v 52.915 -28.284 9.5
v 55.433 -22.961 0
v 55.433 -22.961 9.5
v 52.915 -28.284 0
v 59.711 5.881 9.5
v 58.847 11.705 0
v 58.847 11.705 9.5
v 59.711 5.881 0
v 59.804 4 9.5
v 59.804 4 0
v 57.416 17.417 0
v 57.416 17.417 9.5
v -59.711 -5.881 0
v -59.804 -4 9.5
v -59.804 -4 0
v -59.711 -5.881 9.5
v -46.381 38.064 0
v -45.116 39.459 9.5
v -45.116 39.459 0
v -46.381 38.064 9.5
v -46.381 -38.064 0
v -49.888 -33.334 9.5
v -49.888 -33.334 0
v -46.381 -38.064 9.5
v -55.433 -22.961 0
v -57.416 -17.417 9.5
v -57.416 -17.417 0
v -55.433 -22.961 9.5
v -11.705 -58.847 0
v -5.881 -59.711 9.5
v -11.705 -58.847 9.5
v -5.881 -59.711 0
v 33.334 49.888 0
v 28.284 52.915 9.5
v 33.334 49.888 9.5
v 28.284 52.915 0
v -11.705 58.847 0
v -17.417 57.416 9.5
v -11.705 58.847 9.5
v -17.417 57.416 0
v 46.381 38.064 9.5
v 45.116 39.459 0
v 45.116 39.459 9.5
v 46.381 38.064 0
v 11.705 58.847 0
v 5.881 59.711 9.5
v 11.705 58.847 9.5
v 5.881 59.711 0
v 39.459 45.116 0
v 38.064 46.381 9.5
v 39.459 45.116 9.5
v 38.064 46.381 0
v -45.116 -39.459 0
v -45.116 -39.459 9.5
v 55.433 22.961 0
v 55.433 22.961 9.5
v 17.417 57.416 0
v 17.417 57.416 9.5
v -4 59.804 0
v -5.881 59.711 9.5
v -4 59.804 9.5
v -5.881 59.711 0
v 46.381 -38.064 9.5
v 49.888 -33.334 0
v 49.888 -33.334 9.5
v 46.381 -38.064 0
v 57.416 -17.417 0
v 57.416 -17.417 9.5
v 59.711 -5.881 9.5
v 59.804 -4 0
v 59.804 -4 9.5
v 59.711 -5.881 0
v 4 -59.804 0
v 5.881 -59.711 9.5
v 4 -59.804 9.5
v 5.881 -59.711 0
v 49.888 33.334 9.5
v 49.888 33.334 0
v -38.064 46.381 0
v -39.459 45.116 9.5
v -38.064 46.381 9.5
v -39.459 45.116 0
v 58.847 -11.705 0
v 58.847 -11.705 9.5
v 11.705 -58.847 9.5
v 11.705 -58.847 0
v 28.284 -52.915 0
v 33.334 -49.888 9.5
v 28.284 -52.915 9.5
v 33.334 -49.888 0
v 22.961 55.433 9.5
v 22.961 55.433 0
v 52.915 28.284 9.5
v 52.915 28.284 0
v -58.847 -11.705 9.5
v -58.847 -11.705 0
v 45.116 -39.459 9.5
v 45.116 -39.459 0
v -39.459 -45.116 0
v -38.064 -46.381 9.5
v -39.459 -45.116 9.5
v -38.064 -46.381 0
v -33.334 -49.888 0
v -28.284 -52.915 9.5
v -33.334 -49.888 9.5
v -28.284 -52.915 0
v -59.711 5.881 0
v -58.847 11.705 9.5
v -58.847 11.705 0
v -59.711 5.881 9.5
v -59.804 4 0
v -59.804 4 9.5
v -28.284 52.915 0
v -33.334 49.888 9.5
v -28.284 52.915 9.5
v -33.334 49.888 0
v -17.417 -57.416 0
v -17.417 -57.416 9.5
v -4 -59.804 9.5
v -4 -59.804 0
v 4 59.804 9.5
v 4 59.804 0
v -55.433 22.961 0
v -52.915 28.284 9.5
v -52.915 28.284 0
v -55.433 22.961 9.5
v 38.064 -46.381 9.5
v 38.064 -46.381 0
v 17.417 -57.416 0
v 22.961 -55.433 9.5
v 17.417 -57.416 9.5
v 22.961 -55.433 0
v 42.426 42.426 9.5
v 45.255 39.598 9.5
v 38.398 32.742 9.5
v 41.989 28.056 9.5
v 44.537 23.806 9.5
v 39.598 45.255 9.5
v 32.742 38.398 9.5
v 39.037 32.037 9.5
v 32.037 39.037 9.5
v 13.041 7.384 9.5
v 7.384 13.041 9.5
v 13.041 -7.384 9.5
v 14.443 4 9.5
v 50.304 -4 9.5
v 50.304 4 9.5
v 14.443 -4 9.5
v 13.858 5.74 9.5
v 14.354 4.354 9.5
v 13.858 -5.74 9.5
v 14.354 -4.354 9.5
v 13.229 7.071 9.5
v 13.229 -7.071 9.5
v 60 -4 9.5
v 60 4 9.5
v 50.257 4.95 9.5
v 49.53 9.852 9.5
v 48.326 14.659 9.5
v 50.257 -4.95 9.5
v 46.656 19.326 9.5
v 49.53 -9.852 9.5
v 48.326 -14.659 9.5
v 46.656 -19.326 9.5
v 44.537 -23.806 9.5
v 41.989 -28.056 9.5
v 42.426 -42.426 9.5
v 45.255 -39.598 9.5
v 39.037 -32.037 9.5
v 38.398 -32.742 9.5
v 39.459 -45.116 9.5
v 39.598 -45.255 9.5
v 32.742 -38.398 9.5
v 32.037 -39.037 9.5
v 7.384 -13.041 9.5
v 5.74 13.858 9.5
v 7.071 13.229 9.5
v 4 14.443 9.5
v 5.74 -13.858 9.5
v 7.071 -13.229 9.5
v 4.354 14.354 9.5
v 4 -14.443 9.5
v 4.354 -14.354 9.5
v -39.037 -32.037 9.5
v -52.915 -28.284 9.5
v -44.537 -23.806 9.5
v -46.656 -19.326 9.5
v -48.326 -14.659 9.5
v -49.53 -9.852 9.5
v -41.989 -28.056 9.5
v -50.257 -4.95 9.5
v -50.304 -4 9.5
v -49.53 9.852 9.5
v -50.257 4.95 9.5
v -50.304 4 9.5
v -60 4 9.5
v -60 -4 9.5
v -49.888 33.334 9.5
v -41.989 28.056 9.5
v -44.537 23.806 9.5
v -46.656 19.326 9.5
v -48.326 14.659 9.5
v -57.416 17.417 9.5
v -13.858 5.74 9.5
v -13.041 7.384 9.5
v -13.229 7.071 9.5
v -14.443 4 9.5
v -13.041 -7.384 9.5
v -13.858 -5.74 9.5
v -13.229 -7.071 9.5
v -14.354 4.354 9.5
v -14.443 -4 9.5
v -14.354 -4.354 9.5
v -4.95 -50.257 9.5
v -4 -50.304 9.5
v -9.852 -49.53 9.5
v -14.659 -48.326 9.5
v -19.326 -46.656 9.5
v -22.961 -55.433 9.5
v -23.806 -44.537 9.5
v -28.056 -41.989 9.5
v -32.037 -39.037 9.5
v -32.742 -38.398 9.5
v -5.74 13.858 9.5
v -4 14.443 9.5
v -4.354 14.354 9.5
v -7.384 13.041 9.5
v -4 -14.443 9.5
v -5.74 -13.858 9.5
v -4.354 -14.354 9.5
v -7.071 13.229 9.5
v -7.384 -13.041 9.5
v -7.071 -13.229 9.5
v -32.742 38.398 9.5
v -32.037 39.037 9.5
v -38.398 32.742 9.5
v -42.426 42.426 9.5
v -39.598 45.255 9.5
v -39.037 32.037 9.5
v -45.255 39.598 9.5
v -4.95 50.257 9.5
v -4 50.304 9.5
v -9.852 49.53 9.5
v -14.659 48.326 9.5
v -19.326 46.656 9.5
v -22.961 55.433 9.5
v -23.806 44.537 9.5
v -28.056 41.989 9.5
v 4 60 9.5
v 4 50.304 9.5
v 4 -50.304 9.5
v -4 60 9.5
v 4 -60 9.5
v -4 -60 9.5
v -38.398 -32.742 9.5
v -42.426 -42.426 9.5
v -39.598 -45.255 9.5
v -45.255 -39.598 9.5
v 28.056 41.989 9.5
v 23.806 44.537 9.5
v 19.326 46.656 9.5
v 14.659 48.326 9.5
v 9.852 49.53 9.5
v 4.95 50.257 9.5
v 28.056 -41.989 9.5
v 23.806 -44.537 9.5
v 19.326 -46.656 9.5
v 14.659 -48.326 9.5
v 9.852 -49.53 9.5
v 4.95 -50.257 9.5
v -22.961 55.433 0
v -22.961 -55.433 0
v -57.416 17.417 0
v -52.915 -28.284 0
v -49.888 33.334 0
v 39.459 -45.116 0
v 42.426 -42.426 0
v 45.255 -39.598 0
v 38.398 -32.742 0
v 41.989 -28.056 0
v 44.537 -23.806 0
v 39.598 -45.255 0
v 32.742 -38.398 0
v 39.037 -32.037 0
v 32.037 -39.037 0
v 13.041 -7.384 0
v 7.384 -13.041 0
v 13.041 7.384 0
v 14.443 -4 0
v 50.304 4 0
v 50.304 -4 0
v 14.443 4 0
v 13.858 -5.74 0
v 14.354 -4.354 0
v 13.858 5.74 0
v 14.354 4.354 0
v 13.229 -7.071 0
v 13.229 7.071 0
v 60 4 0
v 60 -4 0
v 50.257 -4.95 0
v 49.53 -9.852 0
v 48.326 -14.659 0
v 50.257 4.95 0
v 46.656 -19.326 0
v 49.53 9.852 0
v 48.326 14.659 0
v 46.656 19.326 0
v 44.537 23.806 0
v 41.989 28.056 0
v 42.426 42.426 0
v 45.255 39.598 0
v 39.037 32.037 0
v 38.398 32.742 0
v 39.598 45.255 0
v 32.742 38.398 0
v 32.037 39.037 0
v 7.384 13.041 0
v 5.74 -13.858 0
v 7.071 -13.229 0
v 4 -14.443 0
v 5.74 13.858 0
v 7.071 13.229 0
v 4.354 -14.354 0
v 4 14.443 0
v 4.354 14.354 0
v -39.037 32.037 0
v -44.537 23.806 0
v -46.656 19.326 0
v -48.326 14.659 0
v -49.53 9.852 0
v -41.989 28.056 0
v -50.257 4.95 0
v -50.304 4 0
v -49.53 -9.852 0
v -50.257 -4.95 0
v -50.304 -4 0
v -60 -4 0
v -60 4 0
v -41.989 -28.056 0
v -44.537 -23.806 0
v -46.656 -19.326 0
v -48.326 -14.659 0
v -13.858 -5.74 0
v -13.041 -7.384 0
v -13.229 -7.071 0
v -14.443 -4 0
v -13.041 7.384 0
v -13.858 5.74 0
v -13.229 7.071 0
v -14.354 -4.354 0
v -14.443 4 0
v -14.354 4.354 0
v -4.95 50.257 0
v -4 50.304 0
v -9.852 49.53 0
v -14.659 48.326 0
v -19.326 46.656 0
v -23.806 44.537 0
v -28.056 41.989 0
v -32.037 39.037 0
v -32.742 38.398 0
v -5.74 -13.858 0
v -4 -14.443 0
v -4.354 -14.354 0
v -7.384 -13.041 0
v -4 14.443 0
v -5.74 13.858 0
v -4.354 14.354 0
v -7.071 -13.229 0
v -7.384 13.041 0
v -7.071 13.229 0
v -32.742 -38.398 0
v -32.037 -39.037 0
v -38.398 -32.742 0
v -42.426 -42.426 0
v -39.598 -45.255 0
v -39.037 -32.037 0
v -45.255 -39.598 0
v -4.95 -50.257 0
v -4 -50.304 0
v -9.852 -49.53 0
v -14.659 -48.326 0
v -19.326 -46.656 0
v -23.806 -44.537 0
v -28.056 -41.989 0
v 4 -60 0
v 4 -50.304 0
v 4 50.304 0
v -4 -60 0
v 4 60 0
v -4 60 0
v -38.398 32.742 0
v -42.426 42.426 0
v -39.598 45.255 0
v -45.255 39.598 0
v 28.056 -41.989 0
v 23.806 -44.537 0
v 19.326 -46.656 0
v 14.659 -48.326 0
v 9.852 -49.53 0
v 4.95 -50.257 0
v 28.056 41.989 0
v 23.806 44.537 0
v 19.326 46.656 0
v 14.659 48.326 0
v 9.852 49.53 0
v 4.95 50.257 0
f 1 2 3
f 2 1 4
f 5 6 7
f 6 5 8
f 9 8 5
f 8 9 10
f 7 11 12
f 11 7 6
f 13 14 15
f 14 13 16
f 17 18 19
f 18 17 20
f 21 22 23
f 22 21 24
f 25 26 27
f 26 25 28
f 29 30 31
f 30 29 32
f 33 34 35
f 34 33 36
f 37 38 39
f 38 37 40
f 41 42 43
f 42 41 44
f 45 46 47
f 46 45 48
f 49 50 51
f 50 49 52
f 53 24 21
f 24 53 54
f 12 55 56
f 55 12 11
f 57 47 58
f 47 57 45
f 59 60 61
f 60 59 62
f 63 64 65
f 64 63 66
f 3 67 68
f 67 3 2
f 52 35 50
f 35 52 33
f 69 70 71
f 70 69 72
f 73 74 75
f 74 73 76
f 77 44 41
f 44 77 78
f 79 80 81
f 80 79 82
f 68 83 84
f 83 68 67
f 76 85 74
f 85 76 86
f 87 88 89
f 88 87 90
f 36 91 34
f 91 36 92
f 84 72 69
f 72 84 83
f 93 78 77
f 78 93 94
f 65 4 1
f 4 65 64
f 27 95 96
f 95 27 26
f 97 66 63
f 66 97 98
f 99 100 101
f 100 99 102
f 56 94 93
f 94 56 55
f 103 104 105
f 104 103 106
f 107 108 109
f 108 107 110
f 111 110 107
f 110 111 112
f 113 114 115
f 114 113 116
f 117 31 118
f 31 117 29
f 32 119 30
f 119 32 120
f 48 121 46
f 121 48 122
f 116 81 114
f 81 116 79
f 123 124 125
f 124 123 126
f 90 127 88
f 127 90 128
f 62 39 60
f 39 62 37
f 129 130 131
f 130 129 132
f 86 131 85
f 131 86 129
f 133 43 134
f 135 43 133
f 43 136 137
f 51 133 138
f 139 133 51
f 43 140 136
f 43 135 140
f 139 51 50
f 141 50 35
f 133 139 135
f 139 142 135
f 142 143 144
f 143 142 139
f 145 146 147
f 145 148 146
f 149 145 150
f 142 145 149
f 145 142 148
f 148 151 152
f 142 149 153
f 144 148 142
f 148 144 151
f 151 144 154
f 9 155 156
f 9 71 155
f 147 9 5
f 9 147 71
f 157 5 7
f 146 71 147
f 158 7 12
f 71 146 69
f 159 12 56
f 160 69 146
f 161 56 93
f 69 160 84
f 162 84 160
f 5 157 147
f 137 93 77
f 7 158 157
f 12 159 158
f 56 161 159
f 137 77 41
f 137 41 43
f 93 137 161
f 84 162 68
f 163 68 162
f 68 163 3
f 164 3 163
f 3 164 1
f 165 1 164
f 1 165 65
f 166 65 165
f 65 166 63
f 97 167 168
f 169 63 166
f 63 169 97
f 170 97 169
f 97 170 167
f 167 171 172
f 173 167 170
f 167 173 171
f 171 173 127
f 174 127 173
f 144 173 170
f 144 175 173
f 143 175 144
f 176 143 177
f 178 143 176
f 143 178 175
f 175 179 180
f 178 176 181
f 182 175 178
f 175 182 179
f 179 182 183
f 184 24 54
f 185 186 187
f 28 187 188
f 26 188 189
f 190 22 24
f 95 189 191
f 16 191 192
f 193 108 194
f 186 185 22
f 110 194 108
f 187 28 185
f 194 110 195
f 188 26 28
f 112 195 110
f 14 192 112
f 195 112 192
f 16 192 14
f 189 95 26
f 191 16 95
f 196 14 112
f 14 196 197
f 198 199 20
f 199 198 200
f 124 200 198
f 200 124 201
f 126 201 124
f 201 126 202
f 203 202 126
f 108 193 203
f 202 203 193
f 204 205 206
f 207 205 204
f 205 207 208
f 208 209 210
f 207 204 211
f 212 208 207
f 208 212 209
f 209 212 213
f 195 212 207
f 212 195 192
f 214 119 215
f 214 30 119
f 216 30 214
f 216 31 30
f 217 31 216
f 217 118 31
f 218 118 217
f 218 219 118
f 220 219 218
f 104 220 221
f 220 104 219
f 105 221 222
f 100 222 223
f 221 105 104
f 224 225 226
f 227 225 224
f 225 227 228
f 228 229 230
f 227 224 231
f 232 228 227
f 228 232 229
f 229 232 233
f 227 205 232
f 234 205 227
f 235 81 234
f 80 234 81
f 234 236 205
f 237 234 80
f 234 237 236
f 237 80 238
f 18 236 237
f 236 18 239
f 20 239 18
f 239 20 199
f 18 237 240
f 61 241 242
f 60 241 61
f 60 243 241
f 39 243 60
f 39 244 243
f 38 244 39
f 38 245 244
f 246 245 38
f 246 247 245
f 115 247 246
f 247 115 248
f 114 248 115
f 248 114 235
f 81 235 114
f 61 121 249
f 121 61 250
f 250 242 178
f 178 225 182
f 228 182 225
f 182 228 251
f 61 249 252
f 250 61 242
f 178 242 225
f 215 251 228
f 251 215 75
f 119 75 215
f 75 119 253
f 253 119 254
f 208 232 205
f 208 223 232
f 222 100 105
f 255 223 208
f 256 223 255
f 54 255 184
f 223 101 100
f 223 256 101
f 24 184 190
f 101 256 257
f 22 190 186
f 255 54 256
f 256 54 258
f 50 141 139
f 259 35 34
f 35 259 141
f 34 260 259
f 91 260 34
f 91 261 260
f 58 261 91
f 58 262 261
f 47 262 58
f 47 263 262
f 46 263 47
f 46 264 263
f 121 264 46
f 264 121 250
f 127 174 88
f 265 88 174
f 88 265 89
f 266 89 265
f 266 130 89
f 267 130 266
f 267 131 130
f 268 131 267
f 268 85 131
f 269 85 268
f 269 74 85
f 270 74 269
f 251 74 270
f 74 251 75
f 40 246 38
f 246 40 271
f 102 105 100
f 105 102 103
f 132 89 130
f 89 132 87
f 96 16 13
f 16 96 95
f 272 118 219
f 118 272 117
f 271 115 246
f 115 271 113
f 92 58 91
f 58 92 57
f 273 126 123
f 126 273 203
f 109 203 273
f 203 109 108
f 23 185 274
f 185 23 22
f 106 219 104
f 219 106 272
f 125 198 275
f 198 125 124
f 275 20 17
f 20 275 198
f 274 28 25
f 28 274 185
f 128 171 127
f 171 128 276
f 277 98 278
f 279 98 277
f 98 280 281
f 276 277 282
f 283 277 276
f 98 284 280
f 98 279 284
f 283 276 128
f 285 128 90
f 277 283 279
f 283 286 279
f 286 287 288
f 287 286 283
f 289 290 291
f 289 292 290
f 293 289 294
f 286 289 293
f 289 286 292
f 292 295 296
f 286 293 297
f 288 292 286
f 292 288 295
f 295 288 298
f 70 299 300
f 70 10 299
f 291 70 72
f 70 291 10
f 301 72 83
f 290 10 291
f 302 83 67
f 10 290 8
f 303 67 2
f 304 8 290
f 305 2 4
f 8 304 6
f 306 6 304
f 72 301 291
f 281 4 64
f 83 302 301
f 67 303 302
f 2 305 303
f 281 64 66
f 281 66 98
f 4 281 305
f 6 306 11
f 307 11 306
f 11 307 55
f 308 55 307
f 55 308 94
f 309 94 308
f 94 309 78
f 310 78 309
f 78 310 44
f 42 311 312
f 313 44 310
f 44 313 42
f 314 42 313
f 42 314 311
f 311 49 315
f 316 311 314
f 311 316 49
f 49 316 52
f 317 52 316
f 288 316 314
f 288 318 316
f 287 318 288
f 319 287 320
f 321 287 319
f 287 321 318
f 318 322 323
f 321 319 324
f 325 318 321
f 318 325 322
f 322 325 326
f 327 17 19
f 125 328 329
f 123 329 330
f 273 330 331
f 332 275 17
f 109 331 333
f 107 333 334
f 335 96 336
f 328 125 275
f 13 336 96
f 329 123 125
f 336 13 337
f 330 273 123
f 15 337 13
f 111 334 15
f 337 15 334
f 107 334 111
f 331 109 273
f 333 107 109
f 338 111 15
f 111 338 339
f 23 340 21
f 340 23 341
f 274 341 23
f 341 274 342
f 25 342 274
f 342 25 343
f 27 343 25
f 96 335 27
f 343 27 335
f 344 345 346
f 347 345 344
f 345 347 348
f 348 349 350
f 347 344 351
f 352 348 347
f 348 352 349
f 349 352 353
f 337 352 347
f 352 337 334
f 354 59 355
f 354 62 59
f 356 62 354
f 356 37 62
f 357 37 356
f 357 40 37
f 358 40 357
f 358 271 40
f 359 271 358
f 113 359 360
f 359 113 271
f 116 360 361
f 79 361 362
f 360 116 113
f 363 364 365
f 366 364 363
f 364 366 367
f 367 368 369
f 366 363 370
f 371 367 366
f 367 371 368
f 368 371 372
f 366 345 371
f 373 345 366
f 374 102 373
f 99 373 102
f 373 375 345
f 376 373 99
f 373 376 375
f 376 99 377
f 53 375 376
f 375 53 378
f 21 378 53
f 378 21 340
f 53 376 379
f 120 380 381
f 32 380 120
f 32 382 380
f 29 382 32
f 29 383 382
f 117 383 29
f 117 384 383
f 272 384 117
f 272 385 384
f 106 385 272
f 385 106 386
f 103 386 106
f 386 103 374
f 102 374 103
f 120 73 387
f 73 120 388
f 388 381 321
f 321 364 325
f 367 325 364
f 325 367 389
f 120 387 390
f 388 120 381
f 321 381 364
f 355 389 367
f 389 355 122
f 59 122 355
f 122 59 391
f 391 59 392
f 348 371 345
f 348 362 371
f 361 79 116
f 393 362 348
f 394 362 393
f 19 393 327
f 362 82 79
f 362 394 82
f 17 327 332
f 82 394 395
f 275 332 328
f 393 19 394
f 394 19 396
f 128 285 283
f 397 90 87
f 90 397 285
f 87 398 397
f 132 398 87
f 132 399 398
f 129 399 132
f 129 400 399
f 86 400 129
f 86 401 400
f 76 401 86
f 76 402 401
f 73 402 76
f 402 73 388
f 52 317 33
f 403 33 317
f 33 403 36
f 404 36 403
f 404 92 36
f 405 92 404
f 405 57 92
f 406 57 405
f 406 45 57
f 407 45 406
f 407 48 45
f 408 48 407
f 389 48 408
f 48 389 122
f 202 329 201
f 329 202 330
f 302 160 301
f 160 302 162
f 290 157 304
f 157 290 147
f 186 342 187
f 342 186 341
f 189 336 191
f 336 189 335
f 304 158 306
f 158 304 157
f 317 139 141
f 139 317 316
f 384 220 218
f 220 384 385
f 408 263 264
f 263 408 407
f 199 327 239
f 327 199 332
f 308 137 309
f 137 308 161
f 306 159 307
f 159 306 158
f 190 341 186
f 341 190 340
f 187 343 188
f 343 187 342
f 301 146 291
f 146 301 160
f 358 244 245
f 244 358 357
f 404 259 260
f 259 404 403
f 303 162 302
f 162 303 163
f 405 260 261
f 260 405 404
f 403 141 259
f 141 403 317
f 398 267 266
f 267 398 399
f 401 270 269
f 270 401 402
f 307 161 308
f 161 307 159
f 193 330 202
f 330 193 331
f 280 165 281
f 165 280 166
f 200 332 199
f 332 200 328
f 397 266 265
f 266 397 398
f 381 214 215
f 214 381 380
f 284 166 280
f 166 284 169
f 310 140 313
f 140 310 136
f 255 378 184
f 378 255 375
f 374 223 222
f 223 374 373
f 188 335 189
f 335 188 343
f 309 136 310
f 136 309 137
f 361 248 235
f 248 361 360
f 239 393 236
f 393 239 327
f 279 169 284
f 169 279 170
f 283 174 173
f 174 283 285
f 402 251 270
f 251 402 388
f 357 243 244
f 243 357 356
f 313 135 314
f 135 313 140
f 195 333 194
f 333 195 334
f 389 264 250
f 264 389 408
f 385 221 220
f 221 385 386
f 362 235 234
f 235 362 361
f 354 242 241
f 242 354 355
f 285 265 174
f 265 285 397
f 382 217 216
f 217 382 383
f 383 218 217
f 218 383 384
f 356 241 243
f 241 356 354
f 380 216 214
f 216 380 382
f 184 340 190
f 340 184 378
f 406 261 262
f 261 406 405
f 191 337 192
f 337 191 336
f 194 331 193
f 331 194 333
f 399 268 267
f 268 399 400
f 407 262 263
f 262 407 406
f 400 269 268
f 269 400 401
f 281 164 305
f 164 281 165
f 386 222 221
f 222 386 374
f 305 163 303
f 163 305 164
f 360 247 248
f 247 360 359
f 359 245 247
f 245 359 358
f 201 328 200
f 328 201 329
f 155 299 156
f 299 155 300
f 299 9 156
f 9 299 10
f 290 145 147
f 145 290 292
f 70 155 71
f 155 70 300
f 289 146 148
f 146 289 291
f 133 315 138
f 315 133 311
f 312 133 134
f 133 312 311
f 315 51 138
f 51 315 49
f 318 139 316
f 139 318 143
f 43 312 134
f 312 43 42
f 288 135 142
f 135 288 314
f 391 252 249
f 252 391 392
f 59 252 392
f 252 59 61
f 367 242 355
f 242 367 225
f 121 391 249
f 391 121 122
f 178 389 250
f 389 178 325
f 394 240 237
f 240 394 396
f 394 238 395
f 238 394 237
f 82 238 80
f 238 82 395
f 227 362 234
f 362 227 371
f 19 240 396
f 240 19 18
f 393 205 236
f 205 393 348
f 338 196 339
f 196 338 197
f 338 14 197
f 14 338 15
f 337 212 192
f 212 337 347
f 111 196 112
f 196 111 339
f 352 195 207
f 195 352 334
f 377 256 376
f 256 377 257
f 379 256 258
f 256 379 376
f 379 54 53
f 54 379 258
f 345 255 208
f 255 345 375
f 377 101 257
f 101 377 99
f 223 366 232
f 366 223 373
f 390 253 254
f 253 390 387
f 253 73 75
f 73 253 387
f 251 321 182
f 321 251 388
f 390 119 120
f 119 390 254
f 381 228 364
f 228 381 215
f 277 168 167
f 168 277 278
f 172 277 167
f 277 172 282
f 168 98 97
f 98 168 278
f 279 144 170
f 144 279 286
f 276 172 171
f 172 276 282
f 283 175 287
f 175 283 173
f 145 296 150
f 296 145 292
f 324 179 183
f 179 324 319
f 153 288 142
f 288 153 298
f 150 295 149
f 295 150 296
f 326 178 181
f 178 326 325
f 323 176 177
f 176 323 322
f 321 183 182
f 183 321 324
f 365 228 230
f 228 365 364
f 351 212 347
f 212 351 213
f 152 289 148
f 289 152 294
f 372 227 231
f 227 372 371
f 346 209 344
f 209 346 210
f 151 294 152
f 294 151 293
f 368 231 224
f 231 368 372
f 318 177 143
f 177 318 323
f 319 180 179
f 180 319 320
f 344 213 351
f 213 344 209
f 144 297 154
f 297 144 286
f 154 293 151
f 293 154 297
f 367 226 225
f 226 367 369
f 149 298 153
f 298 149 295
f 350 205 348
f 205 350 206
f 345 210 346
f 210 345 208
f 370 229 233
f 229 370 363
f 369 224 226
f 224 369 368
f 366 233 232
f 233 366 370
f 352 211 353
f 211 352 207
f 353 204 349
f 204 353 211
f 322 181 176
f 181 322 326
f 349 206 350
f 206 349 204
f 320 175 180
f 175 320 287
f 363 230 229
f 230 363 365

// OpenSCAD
/* doodle-meta {"version":1,"parameters":{"outer_diameter":{"label":"Outer Diameter","description":"Diameter of the wheel rim","unit":"mm","feature":"outer_diameter"},"thickness":{"label":"Thickness","description":"Height of the wheel disc","unit":"mm","feature":"thickness"},"hub_diameter":{"label":"Hub Diameter","description":"Diameter of the central hub","unit":"mm","feature":"hub_diameter"},"spoke_width":{"label":"Spoke Width","description":"Width of each radial spoke","unit":"mm","feature":"spoke_width"},"spoke_count":{"label":"Spoke Count","description":"Number of spokes","unit":"count","feature":"spoke_count"}},"features":{"outer_diameter":{"kind":"dimension","axis":"x","label":"Outer Diameter"},"thickness":{"kind":"dimension","axis":"z","label":"Thickness"},"hub_diameter":{"kind":"dimension","axis":"x","label":"Hub Diameter"},"spoke_width":{"kind":"dimension","axis":"x","label":"Spoke Width"},"spoke_count":{"kind":"dimension","axis":"z","label":"Spoke Count"}}} */

// Parameters
outer_diameter = 120.0;
thickness = 9.5;
hub_diameter = 30.0;
spoke_width = 8.0;
spoke_count = 8;

// Derived constants
$fn = 64;
eps = 0.01;

// Modules
module wheel_body() {
    // Outer Rim
    difference() {
        cylinder(d=outer_diameter, h=thickness, center=false);
        translate([0,0,-eps])
            cylinder(d=outer_diameter - 2*thickness, h=thickness + 2*eps, center=false);
    }
    
    // Central Hub
    translate([0,0,0])
        cylinder(d=hub_diameter, h=thickness, center=false);
        
    // Spokes
    for (i = [0 : spoke_count - 1]) {
        rotate([0, 0, i * (360 / spoke_count)])
            translate([0, -spoke_width/2, 0])
                cube([outer_diameter/2, spoke_width, thickness]);
    }
}

// Main Design
wheel_body();
